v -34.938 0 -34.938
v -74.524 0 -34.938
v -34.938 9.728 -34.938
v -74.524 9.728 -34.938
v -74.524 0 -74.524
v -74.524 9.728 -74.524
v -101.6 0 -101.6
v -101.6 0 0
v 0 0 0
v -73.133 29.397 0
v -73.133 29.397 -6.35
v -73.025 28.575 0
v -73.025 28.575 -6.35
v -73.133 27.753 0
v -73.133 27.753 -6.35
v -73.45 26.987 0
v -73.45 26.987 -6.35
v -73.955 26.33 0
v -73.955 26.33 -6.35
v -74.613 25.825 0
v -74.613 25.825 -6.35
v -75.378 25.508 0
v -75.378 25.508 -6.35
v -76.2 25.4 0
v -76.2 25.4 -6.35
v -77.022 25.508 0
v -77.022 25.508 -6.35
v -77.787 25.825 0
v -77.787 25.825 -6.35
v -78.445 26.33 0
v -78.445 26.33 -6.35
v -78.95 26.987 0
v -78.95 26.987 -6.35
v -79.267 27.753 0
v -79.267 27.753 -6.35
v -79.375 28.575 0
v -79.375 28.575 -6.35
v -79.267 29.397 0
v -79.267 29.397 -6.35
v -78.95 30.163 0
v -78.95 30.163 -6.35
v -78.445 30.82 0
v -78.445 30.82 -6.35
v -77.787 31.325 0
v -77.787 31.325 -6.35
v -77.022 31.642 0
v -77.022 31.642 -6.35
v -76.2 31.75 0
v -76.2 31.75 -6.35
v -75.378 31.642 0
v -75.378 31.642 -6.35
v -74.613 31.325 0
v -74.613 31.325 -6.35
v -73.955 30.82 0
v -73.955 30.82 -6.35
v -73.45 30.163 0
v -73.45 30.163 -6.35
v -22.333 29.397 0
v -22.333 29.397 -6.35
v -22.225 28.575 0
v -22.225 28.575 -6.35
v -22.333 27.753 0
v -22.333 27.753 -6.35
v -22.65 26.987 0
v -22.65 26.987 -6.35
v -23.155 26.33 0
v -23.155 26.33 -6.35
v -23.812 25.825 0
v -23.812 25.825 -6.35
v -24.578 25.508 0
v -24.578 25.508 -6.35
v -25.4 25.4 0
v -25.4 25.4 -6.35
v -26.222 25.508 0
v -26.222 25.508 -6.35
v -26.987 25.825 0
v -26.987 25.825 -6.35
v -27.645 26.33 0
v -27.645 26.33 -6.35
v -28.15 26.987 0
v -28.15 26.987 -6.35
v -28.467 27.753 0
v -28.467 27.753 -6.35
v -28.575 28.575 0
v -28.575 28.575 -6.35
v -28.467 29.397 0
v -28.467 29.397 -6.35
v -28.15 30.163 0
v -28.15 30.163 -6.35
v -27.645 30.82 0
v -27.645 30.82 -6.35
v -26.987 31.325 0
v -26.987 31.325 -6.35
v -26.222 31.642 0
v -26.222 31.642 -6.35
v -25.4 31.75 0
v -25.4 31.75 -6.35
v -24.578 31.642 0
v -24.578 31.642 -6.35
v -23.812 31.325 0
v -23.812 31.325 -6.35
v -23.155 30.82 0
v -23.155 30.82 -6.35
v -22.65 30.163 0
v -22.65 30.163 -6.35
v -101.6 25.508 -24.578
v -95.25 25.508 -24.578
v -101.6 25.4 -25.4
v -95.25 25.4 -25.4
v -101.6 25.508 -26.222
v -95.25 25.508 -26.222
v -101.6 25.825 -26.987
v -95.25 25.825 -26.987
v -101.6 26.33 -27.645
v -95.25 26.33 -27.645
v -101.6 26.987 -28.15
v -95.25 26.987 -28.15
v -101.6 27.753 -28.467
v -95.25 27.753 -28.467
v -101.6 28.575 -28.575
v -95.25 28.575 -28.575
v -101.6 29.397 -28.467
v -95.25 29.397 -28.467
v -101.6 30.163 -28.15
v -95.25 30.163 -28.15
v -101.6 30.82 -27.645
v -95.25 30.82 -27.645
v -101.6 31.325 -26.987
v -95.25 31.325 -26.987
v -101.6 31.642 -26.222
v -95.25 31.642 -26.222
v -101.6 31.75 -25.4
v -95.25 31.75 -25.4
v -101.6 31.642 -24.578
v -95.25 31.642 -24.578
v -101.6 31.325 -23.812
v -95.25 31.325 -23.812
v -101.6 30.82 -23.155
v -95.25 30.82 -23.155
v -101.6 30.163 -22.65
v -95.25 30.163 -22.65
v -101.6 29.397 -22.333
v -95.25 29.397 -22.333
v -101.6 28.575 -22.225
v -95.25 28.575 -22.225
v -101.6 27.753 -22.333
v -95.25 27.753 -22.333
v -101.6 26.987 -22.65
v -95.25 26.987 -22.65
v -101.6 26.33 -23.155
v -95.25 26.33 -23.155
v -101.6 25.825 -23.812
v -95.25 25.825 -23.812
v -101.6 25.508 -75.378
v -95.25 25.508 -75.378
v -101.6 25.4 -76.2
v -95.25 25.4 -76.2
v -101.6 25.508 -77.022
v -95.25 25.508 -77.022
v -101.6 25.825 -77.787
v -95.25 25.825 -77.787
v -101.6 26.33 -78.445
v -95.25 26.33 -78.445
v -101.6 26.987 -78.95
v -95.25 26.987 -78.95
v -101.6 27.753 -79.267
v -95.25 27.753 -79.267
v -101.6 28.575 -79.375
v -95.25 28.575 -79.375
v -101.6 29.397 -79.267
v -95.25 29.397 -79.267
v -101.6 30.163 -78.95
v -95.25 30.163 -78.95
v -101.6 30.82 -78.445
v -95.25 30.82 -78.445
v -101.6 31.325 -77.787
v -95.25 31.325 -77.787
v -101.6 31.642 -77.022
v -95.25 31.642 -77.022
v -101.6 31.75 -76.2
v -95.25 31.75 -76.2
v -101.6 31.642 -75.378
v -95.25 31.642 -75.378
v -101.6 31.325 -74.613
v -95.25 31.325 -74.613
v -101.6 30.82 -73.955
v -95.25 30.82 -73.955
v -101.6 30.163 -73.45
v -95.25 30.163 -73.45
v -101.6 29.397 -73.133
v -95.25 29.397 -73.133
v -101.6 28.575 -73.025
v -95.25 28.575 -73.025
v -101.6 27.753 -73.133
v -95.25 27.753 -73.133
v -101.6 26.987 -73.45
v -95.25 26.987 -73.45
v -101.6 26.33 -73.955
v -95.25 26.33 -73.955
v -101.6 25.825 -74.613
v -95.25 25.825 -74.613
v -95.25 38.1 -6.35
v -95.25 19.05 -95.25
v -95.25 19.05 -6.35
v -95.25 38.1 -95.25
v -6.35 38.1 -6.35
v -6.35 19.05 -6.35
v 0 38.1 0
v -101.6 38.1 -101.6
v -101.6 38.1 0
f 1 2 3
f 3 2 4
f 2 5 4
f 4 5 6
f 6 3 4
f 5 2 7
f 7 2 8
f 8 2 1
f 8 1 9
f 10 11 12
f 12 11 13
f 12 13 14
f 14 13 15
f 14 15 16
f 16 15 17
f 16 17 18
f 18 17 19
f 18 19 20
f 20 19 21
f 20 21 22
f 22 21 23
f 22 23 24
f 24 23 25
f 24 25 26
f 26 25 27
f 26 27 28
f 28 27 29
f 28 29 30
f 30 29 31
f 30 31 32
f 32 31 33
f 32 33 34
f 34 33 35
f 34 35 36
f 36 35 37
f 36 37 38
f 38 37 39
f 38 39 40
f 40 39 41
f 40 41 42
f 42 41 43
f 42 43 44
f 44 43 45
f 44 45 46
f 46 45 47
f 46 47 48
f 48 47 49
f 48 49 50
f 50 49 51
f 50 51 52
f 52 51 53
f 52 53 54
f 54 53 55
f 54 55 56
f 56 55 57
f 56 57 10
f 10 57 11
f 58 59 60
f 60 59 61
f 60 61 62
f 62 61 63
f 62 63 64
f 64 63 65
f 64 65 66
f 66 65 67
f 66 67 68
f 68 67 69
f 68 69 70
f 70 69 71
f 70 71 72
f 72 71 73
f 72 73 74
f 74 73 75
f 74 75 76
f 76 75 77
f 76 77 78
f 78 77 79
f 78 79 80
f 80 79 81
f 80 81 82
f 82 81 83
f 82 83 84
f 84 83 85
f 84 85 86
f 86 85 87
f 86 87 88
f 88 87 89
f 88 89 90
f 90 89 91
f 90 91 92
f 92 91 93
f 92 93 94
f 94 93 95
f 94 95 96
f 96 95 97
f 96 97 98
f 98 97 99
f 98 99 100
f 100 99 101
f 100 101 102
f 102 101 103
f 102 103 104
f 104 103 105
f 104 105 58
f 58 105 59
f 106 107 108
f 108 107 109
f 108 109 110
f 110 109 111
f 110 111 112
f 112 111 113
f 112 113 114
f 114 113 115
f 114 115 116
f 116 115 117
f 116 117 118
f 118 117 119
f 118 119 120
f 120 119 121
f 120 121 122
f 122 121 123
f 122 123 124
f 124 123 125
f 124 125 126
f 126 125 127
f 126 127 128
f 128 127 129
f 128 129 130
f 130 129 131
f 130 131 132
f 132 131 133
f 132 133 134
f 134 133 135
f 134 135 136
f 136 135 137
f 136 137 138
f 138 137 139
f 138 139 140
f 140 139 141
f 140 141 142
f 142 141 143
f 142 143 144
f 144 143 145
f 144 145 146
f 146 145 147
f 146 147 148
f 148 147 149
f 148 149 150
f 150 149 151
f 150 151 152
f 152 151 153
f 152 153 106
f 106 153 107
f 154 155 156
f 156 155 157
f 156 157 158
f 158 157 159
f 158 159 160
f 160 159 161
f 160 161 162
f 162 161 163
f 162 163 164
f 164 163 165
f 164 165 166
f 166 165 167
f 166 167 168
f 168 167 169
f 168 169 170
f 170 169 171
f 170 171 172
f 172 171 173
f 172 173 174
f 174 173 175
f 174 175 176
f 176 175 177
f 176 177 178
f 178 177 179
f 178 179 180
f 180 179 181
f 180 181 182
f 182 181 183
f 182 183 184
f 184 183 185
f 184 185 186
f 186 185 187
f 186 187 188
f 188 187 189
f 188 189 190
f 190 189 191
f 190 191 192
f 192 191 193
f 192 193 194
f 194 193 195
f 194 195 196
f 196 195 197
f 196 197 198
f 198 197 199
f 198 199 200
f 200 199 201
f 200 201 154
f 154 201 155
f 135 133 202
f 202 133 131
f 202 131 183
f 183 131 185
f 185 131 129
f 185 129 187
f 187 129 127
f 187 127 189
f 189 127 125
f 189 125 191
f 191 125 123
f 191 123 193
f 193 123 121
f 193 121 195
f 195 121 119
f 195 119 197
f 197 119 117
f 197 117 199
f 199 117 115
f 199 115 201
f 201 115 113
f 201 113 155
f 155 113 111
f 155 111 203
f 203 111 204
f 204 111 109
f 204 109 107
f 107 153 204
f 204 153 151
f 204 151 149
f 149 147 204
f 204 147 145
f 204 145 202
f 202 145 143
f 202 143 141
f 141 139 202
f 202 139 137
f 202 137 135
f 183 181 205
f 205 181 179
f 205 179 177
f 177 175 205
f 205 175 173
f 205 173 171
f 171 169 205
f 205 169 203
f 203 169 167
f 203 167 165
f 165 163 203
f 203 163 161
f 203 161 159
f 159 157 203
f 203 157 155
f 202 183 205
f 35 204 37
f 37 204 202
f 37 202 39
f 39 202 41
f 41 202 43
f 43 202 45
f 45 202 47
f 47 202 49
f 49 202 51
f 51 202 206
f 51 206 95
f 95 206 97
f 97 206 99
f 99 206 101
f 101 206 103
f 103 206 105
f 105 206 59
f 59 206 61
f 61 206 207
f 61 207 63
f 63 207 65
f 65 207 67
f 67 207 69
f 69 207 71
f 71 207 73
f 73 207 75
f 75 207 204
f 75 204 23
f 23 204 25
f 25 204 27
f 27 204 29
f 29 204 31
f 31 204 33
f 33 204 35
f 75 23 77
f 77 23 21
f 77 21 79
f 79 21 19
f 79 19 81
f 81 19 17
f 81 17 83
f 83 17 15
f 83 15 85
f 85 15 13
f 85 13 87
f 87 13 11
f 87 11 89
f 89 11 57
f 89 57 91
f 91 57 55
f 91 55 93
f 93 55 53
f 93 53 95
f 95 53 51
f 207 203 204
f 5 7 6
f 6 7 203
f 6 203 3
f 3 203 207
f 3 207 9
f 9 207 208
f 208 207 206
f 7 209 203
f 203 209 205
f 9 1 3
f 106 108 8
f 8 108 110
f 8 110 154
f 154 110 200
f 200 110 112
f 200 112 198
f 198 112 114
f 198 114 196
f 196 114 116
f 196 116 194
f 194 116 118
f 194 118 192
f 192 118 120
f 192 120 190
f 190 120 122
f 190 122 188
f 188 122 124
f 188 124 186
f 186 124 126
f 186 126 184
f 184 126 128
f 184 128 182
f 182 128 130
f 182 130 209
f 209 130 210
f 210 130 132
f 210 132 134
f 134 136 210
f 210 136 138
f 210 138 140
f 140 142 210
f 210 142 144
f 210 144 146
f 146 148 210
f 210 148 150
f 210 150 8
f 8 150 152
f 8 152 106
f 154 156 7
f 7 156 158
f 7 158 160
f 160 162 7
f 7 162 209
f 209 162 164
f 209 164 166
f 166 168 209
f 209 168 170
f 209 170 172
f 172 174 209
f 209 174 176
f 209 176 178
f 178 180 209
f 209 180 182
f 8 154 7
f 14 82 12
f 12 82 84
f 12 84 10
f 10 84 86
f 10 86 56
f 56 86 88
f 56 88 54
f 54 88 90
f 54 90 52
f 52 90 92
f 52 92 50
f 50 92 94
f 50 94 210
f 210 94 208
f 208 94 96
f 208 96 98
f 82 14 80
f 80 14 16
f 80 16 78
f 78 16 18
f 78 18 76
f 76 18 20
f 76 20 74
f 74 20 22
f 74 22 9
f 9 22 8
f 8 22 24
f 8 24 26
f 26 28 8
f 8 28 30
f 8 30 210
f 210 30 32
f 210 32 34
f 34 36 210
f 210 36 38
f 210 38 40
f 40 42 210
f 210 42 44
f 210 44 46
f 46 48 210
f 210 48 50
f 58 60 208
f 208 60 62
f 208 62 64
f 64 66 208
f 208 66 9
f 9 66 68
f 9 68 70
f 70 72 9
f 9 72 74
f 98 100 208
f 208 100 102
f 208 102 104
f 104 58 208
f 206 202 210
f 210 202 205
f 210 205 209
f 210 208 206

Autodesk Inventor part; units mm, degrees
ref_plane "YZ Plane" through (0, 0, 0) normal (1, 0, 0) x (0, 1, 0)
ref_plane "XZ Plane" through (0, 0, 0) normal (0, 1, 0) x (-1, 0, 0)
ref_plane "XY Plane" through (0, 0, 0) normal (0, 0, 1) x (1, 0, 0)
sketch "Sketch1" plane through (0, 0, 0) normal (0, 1, 0) x (-1, 0, 0)
  line L0 (0, 0) -> (101.6, 0)
  line L1 (101.6, 0) -> (101.6, -101.6)
  line L2 (0, 0) -> (101.6, -101.6)
  dimension "d2" = 101.6
  dimension "d3" = 101.6
extrude "Extrusion1" add sketch "Sketch1" along normal blind 38.1
sketch "Sketch2" plane through (0, 38.1, 0) normal (0, 1, 0) x (1, 0, 0)
  line L0 (-101.6, 0) -> (0, 0) projected
  line L1 (-101.6, 101.6) -> (-101.6, 0) projected
  line L2 (-6.35, 6.35) -> (-95.25, 6.35)
  line L3 (-95.25, 6.35) -> (-95.25, 95.25)
  line L4 (0, 0) -> (-101.6, 101.6) projected
  line L5 (-6.35, 6.35) -> (-95.25, 95.25)
  dimension "d6" = 6.35
extrude "Extrusion2" cut sketch "Sketch2" against normal blind 19.05 contours L2 L3 L4
hole "Hole1" at (-95.25, 28.575, -76.2) direction (-1, 0, 0) diameter 6.35 end through all
hole "Hole2" at (-95.25, 28.575, -25.4) direction (-1, 0, 0) diameter 6.35 end through all
hole "Hole3" at (-25.4, 28.575, -6.35) direction (0, 0, 1) diameter 6.35 end through all
hole "Hole4" at (-76.2, 28.575, -6.35) direction (0, 0, 1) diameter 6.35 end through all
sketch "Sketch3" plane through (0, 0, 0) normal (0, -1, 0) x (1, 0, 0)
  line L0 (-74.5236, -579.4502) -> (246.1514, -579.4502) projected
  line L1 (-74.5236, -34.9377) -> (-74.5236, -579.4502) projected
  line L2 (246.1514, -34.9377) -> (-74.5236, -34.9377) projected
  line L3 (246.1514, -579.4502) -> (246.1514, -34.9377) projected
  line L4 (-74.5236, -34.9377) -> (-74.5236, -74.5236)
  line L5 (-101.6, -101.6) -> (0, 0) projected
  line L6 (-34.8701, -34.9377) -> (-74.5236, -34.9377)
  line L7 (-34.8701, -34.9377) -> (-74.5236, -74.5236)
extrude "Extrusion3" cut sketch "Sketch3" against normal blind 9.7282 contours L1 L2 L5 | L5 L2 L7
properties part number "bracket"
